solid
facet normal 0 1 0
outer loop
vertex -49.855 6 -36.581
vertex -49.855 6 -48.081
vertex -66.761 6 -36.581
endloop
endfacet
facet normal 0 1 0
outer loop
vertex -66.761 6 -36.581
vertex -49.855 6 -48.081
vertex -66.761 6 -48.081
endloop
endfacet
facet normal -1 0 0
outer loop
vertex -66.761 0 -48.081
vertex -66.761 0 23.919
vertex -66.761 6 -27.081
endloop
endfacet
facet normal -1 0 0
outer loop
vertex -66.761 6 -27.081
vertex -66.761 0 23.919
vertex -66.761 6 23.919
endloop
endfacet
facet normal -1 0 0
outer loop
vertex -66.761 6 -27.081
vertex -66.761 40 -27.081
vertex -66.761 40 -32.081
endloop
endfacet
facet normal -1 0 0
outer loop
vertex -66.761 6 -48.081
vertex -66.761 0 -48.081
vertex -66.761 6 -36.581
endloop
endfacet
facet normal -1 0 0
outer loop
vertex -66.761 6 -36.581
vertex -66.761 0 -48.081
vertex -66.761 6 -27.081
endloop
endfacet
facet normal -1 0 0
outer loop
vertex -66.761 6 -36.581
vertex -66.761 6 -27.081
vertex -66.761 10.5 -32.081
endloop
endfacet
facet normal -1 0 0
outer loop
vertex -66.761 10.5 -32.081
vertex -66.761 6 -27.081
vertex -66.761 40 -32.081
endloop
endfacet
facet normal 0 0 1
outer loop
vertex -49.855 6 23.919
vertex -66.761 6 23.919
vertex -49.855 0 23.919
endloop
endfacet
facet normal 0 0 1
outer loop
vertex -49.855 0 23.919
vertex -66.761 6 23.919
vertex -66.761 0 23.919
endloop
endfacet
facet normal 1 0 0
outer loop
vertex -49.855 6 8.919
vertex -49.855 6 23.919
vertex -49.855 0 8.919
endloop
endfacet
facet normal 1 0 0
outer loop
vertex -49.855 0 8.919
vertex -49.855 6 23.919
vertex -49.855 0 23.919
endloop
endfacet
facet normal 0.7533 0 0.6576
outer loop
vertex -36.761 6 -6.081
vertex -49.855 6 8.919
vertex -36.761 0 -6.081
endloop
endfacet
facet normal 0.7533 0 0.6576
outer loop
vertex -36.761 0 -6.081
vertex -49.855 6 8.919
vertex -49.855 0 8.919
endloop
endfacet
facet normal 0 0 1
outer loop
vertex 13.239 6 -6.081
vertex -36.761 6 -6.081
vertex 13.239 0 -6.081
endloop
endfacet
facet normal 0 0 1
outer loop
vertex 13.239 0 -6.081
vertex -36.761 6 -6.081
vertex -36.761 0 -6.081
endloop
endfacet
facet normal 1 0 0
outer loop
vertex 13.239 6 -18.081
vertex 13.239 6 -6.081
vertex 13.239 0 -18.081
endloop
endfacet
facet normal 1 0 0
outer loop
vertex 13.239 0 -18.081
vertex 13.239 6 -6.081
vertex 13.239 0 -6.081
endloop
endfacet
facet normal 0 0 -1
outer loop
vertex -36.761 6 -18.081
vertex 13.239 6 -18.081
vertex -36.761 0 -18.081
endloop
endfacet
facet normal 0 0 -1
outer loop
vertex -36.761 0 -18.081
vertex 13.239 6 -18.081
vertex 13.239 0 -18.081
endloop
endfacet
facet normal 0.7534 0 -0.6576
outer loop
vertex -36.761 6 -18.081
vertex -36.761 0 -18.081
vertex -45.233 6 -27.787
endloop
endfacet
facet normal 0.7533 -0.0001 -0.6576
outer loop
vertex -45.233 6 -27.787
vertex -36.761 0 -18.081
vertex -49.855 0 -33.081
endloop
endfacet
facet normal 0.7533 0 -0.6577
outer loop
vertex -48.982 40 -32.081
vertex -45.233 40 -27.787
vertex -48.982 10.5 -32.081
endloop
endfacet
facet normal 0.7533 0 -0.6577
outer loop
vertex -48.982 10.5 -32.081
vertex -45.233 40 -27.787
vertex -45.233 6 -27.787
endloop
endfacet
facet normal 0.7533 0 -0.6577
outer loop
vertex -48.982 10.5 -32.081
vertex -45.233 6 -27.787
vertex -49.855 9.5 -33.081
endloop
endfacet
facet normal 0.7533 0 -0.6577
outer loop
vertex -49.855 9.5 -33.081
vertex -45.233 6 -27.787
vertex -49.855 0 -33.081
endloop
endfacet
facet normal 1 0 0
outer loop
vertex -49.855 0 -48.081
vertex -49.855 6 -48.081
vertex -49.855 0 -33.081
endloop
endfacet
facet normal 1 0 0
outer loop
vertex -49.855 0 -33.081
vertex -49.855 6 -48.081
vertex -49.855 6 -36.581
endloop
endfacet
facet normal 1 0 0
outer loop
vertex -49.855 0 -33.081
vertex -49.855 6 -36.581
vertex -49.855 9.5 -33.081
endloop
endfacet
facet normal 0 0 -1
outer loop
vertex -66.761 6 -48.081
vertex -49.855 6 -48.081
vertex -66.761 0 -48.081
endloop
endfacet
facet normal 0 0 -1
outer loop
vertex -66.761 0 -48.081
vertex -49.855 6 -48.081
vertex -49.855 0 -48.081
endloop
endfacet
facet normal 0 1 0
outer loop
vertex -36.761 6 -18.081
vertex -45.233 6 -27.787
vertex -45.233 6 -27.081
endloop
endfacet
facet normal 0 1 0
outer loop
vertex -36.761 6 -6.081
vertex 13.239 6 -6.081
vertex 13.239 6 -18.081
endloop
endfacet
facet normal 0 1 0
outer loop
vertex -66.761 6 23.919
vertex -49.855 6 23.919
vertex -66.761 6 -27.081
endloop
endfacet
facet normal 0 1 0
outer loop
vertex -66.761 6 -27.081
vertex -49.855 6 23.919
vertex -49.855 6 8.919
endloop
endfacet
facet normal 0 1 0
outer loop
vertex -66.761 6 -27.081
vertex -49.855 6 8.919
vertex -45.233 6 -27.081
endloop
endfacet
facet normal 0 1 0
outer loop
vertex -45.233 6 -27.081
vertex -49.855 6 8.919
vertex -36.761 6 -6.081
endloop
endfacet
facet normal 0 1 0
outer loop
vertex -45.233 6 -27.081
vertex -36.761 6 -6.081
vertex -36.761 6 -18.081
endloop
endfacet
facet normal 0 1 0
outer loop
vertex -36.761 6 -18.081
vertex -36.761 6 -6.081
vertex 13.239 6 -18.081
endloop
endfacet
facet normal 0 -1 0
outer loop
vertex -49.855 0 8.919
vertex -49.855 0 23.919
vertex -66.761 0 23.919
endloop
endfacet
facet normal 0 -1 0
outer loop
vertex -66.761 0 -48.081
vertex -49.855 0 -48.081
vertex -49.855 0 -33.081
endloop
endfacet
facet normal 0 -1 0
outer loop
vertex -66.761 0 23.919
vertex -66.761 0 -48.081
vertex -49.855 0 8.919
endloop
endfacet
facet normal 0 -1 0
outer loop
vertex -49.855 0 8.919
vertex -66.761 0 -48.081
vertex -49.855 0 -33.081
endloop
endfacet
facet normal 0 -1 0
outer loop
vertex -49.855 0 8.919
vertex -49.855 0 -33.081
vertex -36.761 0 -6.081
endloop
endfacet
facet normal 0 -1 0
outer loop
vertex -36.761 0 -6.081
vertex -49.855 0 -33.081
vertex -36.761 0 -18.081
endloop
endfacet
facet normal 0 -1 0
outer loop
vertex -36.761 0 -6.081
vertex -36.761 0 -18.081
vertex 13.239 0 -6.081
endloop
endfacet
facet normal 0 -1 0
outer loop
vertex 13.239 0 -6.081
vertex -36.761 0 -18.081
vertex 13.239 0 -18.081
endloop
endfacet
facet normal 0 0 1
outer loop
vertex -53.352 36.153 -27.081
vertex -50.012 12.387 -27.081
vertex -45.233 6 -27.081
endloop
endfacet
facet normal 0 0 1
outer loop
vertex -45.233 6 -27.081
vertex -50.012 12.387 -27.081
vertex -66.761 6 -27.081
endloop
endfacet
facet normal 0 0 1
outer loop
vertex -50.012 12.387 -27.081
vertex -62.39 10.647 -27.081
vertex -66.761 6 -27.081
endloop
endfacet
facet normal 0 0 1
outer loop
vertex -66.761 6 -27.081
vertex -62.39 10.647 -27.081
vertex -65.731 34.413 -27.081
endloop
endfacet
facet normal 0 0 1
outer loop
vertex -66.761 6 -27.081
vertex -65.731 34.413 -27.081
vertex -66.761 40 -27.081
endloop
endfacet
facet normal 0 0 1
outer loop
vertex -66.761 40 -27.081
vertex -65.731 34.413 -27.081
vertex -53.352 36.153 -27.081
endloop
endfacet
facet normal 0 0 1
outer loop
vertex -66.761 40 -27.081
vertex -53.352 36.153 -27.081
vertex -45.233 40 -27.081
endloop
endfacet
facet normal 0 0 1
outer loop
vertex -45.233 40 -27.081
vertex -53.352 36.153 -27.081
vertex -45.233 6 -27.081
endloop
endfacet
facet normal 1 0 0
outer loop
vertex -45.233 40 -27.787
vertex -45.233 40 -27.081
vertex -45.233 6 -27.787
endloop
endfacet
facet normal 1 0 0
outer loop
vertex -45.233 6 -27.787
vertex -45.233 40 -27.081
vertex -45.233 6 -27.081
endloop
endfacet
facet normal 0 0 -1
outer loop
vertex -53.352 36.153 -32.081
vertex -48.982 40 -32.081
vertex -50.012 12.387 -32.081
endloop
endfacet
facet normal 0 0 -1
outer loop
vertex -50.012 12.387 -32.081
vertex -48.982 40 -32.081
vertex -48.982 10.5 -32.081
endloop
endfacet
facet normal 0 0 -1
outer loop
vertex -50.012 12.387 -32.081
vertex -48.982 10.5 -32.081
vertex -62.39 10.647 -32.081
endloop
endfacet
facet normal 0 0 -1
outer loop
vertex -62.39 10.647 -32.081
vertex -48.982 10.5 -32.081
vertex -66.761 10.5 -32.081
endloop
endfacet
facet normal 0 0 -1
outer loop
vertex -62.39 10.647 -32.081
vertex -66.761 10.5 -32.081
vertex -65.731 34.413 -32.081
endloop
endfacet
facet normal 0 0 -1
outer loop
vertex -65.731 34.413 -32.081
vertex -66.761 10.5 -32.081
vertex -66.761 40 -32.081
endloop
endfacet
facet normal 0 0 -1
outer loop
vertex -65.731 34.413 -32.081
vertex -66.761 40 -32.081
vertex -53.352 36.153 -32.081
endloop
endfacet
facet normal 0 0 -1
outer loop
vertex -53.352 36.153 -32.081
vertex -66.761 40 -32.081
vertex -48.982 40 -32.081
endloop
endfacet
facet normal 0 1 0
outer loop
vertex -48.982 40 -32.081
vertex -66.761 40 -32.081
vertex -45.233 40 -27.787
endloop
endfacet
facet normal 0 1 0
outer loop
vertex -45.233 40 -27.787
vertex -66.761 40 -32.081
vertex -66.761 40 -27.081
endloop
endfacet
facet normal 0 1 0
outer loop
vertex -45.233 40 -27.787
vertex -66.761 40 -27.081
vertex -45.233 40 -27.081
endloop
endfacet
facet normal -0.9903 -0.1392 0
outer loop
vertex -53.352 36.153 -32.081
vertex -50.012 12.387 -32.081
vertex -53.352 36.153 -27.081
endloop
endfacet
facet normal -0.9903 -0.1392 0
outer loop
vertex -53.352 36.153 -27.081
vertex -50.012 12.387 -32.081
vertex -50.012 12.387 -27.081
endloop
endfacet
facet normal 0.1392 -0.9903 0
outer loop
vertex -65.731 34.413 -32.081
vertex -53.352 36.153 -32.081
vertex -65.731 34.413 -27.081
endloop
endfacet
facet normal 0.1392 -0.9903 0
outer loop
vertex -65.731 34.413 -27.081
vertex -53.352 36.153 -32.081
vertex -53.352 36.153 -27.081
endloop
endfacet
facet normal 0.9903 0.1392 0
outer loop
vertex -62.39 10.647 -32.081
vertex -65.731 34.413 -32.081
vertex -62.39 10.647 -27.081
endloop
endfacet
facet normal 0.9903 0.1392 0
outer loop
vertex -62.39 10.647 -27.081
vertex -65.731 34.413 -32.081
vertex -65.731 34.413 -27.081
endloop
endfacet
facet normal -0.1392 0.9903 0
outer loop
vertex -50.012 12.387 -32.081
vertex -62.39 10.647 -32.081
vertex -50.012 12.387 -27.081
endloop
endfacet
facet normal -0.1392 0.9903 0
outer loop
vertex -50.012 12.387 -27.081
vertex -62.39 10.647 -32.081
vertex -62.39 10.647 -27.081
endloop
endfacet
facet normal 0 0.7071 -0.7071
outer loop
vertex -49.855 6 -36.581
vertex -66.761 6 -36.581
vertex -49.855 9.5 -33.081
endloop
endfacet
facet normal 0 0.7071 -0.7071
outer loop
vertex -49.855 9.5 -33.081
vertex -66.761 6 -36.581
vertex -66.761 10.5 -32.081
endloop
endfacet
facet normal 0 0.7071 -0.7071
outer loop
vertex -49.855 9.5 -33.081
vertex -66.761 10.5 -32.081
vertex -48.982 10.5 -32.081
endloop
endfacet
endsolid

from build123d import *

# Parameters (mm, degrees)
EXTRUDE_1_DEPTH     = 6
EXTRUDE_2_DEPTH     = 34
CUT_EXTRUDE_1_DEPTH = 5
CHAMFER_1_SIZE      = 4.5


with BuildPart() as part:
    # Эскиз1 → Бобышка-Вытянуть1 (new body)
    with BuildSketch(Plane(origin=(0, 0, 0), x_dir=(1, 0, 0), z_dir=(0, 1, 0))):
        Polygon((-49.854690153425345, 33.081252417759906), (-36.76089588655862, 18.081252417759906), (13.239104113441384, 18.08125241775991), (13.239104113441385, 6.081252417759905), (-36.76089588655862, 6.081252417759905), (-49.85469015342534, -8.918747582240094), (-49.85469015342534, -23.918747582240094), (-66.76089588655861, -23.918747582240094), (-66.76089588655861, 6.081252417759901), (-66.76089588655861, 18.081252417759902), (-66.76089588655861, 48.0812524177599), (-49.854690153425345, 48.0812524177599), align=None)
    extrude(amount=EXTRUDE_1_DEPTH)

    # Эскиз2 → Бобышка-Вытянуть2 (add)
    with BuildSketch(Plane(origin=(0, 6, 0), x_dir=(1, 0, 0), z_dir=(0, 1, 0))):
        Polygon((-66.76089588655861, 32.08125241775989), (-48.98177053563421, 32.08125241775989), (-45.2333870796828, 27.787176102421114), (-45.2333870796828, 27.081252417759895), (-66.76089588655861, 27.081252417759895), align=None)
    extrude(amount=EXTRUDE_2_DEPTH)

    # Эскиз3 → Вырез-Вытянуть1 (cut)
    with BuildSketch(Plane(origin=(0, 0, -32.08125241775989), x_dir=(-1, 0, 0), z_dir=(0, 0, -1))):
        Polygon((53.35223499298238, 36.15304870589925), (65.730585852252, 34.413384943898436), (62.39043142921044, 10.646951294100747), (50.012080569940814, 12.386615056101567), align=None)
    extrude(amount=-CUT_EXTRUDE_1_DEPTH, mode=Mode.SUBTRACT)

    # Фаска1
    chamfer_1_edges = [part.edges().sort_by_distance(p)[0] for p in [
        (-57.87133321109641, 6, -32.08125241775989),
    ]]
    chamfer(chamfer_1_edges, length=CHAMFER_1_SIZE)


solid = part.part
